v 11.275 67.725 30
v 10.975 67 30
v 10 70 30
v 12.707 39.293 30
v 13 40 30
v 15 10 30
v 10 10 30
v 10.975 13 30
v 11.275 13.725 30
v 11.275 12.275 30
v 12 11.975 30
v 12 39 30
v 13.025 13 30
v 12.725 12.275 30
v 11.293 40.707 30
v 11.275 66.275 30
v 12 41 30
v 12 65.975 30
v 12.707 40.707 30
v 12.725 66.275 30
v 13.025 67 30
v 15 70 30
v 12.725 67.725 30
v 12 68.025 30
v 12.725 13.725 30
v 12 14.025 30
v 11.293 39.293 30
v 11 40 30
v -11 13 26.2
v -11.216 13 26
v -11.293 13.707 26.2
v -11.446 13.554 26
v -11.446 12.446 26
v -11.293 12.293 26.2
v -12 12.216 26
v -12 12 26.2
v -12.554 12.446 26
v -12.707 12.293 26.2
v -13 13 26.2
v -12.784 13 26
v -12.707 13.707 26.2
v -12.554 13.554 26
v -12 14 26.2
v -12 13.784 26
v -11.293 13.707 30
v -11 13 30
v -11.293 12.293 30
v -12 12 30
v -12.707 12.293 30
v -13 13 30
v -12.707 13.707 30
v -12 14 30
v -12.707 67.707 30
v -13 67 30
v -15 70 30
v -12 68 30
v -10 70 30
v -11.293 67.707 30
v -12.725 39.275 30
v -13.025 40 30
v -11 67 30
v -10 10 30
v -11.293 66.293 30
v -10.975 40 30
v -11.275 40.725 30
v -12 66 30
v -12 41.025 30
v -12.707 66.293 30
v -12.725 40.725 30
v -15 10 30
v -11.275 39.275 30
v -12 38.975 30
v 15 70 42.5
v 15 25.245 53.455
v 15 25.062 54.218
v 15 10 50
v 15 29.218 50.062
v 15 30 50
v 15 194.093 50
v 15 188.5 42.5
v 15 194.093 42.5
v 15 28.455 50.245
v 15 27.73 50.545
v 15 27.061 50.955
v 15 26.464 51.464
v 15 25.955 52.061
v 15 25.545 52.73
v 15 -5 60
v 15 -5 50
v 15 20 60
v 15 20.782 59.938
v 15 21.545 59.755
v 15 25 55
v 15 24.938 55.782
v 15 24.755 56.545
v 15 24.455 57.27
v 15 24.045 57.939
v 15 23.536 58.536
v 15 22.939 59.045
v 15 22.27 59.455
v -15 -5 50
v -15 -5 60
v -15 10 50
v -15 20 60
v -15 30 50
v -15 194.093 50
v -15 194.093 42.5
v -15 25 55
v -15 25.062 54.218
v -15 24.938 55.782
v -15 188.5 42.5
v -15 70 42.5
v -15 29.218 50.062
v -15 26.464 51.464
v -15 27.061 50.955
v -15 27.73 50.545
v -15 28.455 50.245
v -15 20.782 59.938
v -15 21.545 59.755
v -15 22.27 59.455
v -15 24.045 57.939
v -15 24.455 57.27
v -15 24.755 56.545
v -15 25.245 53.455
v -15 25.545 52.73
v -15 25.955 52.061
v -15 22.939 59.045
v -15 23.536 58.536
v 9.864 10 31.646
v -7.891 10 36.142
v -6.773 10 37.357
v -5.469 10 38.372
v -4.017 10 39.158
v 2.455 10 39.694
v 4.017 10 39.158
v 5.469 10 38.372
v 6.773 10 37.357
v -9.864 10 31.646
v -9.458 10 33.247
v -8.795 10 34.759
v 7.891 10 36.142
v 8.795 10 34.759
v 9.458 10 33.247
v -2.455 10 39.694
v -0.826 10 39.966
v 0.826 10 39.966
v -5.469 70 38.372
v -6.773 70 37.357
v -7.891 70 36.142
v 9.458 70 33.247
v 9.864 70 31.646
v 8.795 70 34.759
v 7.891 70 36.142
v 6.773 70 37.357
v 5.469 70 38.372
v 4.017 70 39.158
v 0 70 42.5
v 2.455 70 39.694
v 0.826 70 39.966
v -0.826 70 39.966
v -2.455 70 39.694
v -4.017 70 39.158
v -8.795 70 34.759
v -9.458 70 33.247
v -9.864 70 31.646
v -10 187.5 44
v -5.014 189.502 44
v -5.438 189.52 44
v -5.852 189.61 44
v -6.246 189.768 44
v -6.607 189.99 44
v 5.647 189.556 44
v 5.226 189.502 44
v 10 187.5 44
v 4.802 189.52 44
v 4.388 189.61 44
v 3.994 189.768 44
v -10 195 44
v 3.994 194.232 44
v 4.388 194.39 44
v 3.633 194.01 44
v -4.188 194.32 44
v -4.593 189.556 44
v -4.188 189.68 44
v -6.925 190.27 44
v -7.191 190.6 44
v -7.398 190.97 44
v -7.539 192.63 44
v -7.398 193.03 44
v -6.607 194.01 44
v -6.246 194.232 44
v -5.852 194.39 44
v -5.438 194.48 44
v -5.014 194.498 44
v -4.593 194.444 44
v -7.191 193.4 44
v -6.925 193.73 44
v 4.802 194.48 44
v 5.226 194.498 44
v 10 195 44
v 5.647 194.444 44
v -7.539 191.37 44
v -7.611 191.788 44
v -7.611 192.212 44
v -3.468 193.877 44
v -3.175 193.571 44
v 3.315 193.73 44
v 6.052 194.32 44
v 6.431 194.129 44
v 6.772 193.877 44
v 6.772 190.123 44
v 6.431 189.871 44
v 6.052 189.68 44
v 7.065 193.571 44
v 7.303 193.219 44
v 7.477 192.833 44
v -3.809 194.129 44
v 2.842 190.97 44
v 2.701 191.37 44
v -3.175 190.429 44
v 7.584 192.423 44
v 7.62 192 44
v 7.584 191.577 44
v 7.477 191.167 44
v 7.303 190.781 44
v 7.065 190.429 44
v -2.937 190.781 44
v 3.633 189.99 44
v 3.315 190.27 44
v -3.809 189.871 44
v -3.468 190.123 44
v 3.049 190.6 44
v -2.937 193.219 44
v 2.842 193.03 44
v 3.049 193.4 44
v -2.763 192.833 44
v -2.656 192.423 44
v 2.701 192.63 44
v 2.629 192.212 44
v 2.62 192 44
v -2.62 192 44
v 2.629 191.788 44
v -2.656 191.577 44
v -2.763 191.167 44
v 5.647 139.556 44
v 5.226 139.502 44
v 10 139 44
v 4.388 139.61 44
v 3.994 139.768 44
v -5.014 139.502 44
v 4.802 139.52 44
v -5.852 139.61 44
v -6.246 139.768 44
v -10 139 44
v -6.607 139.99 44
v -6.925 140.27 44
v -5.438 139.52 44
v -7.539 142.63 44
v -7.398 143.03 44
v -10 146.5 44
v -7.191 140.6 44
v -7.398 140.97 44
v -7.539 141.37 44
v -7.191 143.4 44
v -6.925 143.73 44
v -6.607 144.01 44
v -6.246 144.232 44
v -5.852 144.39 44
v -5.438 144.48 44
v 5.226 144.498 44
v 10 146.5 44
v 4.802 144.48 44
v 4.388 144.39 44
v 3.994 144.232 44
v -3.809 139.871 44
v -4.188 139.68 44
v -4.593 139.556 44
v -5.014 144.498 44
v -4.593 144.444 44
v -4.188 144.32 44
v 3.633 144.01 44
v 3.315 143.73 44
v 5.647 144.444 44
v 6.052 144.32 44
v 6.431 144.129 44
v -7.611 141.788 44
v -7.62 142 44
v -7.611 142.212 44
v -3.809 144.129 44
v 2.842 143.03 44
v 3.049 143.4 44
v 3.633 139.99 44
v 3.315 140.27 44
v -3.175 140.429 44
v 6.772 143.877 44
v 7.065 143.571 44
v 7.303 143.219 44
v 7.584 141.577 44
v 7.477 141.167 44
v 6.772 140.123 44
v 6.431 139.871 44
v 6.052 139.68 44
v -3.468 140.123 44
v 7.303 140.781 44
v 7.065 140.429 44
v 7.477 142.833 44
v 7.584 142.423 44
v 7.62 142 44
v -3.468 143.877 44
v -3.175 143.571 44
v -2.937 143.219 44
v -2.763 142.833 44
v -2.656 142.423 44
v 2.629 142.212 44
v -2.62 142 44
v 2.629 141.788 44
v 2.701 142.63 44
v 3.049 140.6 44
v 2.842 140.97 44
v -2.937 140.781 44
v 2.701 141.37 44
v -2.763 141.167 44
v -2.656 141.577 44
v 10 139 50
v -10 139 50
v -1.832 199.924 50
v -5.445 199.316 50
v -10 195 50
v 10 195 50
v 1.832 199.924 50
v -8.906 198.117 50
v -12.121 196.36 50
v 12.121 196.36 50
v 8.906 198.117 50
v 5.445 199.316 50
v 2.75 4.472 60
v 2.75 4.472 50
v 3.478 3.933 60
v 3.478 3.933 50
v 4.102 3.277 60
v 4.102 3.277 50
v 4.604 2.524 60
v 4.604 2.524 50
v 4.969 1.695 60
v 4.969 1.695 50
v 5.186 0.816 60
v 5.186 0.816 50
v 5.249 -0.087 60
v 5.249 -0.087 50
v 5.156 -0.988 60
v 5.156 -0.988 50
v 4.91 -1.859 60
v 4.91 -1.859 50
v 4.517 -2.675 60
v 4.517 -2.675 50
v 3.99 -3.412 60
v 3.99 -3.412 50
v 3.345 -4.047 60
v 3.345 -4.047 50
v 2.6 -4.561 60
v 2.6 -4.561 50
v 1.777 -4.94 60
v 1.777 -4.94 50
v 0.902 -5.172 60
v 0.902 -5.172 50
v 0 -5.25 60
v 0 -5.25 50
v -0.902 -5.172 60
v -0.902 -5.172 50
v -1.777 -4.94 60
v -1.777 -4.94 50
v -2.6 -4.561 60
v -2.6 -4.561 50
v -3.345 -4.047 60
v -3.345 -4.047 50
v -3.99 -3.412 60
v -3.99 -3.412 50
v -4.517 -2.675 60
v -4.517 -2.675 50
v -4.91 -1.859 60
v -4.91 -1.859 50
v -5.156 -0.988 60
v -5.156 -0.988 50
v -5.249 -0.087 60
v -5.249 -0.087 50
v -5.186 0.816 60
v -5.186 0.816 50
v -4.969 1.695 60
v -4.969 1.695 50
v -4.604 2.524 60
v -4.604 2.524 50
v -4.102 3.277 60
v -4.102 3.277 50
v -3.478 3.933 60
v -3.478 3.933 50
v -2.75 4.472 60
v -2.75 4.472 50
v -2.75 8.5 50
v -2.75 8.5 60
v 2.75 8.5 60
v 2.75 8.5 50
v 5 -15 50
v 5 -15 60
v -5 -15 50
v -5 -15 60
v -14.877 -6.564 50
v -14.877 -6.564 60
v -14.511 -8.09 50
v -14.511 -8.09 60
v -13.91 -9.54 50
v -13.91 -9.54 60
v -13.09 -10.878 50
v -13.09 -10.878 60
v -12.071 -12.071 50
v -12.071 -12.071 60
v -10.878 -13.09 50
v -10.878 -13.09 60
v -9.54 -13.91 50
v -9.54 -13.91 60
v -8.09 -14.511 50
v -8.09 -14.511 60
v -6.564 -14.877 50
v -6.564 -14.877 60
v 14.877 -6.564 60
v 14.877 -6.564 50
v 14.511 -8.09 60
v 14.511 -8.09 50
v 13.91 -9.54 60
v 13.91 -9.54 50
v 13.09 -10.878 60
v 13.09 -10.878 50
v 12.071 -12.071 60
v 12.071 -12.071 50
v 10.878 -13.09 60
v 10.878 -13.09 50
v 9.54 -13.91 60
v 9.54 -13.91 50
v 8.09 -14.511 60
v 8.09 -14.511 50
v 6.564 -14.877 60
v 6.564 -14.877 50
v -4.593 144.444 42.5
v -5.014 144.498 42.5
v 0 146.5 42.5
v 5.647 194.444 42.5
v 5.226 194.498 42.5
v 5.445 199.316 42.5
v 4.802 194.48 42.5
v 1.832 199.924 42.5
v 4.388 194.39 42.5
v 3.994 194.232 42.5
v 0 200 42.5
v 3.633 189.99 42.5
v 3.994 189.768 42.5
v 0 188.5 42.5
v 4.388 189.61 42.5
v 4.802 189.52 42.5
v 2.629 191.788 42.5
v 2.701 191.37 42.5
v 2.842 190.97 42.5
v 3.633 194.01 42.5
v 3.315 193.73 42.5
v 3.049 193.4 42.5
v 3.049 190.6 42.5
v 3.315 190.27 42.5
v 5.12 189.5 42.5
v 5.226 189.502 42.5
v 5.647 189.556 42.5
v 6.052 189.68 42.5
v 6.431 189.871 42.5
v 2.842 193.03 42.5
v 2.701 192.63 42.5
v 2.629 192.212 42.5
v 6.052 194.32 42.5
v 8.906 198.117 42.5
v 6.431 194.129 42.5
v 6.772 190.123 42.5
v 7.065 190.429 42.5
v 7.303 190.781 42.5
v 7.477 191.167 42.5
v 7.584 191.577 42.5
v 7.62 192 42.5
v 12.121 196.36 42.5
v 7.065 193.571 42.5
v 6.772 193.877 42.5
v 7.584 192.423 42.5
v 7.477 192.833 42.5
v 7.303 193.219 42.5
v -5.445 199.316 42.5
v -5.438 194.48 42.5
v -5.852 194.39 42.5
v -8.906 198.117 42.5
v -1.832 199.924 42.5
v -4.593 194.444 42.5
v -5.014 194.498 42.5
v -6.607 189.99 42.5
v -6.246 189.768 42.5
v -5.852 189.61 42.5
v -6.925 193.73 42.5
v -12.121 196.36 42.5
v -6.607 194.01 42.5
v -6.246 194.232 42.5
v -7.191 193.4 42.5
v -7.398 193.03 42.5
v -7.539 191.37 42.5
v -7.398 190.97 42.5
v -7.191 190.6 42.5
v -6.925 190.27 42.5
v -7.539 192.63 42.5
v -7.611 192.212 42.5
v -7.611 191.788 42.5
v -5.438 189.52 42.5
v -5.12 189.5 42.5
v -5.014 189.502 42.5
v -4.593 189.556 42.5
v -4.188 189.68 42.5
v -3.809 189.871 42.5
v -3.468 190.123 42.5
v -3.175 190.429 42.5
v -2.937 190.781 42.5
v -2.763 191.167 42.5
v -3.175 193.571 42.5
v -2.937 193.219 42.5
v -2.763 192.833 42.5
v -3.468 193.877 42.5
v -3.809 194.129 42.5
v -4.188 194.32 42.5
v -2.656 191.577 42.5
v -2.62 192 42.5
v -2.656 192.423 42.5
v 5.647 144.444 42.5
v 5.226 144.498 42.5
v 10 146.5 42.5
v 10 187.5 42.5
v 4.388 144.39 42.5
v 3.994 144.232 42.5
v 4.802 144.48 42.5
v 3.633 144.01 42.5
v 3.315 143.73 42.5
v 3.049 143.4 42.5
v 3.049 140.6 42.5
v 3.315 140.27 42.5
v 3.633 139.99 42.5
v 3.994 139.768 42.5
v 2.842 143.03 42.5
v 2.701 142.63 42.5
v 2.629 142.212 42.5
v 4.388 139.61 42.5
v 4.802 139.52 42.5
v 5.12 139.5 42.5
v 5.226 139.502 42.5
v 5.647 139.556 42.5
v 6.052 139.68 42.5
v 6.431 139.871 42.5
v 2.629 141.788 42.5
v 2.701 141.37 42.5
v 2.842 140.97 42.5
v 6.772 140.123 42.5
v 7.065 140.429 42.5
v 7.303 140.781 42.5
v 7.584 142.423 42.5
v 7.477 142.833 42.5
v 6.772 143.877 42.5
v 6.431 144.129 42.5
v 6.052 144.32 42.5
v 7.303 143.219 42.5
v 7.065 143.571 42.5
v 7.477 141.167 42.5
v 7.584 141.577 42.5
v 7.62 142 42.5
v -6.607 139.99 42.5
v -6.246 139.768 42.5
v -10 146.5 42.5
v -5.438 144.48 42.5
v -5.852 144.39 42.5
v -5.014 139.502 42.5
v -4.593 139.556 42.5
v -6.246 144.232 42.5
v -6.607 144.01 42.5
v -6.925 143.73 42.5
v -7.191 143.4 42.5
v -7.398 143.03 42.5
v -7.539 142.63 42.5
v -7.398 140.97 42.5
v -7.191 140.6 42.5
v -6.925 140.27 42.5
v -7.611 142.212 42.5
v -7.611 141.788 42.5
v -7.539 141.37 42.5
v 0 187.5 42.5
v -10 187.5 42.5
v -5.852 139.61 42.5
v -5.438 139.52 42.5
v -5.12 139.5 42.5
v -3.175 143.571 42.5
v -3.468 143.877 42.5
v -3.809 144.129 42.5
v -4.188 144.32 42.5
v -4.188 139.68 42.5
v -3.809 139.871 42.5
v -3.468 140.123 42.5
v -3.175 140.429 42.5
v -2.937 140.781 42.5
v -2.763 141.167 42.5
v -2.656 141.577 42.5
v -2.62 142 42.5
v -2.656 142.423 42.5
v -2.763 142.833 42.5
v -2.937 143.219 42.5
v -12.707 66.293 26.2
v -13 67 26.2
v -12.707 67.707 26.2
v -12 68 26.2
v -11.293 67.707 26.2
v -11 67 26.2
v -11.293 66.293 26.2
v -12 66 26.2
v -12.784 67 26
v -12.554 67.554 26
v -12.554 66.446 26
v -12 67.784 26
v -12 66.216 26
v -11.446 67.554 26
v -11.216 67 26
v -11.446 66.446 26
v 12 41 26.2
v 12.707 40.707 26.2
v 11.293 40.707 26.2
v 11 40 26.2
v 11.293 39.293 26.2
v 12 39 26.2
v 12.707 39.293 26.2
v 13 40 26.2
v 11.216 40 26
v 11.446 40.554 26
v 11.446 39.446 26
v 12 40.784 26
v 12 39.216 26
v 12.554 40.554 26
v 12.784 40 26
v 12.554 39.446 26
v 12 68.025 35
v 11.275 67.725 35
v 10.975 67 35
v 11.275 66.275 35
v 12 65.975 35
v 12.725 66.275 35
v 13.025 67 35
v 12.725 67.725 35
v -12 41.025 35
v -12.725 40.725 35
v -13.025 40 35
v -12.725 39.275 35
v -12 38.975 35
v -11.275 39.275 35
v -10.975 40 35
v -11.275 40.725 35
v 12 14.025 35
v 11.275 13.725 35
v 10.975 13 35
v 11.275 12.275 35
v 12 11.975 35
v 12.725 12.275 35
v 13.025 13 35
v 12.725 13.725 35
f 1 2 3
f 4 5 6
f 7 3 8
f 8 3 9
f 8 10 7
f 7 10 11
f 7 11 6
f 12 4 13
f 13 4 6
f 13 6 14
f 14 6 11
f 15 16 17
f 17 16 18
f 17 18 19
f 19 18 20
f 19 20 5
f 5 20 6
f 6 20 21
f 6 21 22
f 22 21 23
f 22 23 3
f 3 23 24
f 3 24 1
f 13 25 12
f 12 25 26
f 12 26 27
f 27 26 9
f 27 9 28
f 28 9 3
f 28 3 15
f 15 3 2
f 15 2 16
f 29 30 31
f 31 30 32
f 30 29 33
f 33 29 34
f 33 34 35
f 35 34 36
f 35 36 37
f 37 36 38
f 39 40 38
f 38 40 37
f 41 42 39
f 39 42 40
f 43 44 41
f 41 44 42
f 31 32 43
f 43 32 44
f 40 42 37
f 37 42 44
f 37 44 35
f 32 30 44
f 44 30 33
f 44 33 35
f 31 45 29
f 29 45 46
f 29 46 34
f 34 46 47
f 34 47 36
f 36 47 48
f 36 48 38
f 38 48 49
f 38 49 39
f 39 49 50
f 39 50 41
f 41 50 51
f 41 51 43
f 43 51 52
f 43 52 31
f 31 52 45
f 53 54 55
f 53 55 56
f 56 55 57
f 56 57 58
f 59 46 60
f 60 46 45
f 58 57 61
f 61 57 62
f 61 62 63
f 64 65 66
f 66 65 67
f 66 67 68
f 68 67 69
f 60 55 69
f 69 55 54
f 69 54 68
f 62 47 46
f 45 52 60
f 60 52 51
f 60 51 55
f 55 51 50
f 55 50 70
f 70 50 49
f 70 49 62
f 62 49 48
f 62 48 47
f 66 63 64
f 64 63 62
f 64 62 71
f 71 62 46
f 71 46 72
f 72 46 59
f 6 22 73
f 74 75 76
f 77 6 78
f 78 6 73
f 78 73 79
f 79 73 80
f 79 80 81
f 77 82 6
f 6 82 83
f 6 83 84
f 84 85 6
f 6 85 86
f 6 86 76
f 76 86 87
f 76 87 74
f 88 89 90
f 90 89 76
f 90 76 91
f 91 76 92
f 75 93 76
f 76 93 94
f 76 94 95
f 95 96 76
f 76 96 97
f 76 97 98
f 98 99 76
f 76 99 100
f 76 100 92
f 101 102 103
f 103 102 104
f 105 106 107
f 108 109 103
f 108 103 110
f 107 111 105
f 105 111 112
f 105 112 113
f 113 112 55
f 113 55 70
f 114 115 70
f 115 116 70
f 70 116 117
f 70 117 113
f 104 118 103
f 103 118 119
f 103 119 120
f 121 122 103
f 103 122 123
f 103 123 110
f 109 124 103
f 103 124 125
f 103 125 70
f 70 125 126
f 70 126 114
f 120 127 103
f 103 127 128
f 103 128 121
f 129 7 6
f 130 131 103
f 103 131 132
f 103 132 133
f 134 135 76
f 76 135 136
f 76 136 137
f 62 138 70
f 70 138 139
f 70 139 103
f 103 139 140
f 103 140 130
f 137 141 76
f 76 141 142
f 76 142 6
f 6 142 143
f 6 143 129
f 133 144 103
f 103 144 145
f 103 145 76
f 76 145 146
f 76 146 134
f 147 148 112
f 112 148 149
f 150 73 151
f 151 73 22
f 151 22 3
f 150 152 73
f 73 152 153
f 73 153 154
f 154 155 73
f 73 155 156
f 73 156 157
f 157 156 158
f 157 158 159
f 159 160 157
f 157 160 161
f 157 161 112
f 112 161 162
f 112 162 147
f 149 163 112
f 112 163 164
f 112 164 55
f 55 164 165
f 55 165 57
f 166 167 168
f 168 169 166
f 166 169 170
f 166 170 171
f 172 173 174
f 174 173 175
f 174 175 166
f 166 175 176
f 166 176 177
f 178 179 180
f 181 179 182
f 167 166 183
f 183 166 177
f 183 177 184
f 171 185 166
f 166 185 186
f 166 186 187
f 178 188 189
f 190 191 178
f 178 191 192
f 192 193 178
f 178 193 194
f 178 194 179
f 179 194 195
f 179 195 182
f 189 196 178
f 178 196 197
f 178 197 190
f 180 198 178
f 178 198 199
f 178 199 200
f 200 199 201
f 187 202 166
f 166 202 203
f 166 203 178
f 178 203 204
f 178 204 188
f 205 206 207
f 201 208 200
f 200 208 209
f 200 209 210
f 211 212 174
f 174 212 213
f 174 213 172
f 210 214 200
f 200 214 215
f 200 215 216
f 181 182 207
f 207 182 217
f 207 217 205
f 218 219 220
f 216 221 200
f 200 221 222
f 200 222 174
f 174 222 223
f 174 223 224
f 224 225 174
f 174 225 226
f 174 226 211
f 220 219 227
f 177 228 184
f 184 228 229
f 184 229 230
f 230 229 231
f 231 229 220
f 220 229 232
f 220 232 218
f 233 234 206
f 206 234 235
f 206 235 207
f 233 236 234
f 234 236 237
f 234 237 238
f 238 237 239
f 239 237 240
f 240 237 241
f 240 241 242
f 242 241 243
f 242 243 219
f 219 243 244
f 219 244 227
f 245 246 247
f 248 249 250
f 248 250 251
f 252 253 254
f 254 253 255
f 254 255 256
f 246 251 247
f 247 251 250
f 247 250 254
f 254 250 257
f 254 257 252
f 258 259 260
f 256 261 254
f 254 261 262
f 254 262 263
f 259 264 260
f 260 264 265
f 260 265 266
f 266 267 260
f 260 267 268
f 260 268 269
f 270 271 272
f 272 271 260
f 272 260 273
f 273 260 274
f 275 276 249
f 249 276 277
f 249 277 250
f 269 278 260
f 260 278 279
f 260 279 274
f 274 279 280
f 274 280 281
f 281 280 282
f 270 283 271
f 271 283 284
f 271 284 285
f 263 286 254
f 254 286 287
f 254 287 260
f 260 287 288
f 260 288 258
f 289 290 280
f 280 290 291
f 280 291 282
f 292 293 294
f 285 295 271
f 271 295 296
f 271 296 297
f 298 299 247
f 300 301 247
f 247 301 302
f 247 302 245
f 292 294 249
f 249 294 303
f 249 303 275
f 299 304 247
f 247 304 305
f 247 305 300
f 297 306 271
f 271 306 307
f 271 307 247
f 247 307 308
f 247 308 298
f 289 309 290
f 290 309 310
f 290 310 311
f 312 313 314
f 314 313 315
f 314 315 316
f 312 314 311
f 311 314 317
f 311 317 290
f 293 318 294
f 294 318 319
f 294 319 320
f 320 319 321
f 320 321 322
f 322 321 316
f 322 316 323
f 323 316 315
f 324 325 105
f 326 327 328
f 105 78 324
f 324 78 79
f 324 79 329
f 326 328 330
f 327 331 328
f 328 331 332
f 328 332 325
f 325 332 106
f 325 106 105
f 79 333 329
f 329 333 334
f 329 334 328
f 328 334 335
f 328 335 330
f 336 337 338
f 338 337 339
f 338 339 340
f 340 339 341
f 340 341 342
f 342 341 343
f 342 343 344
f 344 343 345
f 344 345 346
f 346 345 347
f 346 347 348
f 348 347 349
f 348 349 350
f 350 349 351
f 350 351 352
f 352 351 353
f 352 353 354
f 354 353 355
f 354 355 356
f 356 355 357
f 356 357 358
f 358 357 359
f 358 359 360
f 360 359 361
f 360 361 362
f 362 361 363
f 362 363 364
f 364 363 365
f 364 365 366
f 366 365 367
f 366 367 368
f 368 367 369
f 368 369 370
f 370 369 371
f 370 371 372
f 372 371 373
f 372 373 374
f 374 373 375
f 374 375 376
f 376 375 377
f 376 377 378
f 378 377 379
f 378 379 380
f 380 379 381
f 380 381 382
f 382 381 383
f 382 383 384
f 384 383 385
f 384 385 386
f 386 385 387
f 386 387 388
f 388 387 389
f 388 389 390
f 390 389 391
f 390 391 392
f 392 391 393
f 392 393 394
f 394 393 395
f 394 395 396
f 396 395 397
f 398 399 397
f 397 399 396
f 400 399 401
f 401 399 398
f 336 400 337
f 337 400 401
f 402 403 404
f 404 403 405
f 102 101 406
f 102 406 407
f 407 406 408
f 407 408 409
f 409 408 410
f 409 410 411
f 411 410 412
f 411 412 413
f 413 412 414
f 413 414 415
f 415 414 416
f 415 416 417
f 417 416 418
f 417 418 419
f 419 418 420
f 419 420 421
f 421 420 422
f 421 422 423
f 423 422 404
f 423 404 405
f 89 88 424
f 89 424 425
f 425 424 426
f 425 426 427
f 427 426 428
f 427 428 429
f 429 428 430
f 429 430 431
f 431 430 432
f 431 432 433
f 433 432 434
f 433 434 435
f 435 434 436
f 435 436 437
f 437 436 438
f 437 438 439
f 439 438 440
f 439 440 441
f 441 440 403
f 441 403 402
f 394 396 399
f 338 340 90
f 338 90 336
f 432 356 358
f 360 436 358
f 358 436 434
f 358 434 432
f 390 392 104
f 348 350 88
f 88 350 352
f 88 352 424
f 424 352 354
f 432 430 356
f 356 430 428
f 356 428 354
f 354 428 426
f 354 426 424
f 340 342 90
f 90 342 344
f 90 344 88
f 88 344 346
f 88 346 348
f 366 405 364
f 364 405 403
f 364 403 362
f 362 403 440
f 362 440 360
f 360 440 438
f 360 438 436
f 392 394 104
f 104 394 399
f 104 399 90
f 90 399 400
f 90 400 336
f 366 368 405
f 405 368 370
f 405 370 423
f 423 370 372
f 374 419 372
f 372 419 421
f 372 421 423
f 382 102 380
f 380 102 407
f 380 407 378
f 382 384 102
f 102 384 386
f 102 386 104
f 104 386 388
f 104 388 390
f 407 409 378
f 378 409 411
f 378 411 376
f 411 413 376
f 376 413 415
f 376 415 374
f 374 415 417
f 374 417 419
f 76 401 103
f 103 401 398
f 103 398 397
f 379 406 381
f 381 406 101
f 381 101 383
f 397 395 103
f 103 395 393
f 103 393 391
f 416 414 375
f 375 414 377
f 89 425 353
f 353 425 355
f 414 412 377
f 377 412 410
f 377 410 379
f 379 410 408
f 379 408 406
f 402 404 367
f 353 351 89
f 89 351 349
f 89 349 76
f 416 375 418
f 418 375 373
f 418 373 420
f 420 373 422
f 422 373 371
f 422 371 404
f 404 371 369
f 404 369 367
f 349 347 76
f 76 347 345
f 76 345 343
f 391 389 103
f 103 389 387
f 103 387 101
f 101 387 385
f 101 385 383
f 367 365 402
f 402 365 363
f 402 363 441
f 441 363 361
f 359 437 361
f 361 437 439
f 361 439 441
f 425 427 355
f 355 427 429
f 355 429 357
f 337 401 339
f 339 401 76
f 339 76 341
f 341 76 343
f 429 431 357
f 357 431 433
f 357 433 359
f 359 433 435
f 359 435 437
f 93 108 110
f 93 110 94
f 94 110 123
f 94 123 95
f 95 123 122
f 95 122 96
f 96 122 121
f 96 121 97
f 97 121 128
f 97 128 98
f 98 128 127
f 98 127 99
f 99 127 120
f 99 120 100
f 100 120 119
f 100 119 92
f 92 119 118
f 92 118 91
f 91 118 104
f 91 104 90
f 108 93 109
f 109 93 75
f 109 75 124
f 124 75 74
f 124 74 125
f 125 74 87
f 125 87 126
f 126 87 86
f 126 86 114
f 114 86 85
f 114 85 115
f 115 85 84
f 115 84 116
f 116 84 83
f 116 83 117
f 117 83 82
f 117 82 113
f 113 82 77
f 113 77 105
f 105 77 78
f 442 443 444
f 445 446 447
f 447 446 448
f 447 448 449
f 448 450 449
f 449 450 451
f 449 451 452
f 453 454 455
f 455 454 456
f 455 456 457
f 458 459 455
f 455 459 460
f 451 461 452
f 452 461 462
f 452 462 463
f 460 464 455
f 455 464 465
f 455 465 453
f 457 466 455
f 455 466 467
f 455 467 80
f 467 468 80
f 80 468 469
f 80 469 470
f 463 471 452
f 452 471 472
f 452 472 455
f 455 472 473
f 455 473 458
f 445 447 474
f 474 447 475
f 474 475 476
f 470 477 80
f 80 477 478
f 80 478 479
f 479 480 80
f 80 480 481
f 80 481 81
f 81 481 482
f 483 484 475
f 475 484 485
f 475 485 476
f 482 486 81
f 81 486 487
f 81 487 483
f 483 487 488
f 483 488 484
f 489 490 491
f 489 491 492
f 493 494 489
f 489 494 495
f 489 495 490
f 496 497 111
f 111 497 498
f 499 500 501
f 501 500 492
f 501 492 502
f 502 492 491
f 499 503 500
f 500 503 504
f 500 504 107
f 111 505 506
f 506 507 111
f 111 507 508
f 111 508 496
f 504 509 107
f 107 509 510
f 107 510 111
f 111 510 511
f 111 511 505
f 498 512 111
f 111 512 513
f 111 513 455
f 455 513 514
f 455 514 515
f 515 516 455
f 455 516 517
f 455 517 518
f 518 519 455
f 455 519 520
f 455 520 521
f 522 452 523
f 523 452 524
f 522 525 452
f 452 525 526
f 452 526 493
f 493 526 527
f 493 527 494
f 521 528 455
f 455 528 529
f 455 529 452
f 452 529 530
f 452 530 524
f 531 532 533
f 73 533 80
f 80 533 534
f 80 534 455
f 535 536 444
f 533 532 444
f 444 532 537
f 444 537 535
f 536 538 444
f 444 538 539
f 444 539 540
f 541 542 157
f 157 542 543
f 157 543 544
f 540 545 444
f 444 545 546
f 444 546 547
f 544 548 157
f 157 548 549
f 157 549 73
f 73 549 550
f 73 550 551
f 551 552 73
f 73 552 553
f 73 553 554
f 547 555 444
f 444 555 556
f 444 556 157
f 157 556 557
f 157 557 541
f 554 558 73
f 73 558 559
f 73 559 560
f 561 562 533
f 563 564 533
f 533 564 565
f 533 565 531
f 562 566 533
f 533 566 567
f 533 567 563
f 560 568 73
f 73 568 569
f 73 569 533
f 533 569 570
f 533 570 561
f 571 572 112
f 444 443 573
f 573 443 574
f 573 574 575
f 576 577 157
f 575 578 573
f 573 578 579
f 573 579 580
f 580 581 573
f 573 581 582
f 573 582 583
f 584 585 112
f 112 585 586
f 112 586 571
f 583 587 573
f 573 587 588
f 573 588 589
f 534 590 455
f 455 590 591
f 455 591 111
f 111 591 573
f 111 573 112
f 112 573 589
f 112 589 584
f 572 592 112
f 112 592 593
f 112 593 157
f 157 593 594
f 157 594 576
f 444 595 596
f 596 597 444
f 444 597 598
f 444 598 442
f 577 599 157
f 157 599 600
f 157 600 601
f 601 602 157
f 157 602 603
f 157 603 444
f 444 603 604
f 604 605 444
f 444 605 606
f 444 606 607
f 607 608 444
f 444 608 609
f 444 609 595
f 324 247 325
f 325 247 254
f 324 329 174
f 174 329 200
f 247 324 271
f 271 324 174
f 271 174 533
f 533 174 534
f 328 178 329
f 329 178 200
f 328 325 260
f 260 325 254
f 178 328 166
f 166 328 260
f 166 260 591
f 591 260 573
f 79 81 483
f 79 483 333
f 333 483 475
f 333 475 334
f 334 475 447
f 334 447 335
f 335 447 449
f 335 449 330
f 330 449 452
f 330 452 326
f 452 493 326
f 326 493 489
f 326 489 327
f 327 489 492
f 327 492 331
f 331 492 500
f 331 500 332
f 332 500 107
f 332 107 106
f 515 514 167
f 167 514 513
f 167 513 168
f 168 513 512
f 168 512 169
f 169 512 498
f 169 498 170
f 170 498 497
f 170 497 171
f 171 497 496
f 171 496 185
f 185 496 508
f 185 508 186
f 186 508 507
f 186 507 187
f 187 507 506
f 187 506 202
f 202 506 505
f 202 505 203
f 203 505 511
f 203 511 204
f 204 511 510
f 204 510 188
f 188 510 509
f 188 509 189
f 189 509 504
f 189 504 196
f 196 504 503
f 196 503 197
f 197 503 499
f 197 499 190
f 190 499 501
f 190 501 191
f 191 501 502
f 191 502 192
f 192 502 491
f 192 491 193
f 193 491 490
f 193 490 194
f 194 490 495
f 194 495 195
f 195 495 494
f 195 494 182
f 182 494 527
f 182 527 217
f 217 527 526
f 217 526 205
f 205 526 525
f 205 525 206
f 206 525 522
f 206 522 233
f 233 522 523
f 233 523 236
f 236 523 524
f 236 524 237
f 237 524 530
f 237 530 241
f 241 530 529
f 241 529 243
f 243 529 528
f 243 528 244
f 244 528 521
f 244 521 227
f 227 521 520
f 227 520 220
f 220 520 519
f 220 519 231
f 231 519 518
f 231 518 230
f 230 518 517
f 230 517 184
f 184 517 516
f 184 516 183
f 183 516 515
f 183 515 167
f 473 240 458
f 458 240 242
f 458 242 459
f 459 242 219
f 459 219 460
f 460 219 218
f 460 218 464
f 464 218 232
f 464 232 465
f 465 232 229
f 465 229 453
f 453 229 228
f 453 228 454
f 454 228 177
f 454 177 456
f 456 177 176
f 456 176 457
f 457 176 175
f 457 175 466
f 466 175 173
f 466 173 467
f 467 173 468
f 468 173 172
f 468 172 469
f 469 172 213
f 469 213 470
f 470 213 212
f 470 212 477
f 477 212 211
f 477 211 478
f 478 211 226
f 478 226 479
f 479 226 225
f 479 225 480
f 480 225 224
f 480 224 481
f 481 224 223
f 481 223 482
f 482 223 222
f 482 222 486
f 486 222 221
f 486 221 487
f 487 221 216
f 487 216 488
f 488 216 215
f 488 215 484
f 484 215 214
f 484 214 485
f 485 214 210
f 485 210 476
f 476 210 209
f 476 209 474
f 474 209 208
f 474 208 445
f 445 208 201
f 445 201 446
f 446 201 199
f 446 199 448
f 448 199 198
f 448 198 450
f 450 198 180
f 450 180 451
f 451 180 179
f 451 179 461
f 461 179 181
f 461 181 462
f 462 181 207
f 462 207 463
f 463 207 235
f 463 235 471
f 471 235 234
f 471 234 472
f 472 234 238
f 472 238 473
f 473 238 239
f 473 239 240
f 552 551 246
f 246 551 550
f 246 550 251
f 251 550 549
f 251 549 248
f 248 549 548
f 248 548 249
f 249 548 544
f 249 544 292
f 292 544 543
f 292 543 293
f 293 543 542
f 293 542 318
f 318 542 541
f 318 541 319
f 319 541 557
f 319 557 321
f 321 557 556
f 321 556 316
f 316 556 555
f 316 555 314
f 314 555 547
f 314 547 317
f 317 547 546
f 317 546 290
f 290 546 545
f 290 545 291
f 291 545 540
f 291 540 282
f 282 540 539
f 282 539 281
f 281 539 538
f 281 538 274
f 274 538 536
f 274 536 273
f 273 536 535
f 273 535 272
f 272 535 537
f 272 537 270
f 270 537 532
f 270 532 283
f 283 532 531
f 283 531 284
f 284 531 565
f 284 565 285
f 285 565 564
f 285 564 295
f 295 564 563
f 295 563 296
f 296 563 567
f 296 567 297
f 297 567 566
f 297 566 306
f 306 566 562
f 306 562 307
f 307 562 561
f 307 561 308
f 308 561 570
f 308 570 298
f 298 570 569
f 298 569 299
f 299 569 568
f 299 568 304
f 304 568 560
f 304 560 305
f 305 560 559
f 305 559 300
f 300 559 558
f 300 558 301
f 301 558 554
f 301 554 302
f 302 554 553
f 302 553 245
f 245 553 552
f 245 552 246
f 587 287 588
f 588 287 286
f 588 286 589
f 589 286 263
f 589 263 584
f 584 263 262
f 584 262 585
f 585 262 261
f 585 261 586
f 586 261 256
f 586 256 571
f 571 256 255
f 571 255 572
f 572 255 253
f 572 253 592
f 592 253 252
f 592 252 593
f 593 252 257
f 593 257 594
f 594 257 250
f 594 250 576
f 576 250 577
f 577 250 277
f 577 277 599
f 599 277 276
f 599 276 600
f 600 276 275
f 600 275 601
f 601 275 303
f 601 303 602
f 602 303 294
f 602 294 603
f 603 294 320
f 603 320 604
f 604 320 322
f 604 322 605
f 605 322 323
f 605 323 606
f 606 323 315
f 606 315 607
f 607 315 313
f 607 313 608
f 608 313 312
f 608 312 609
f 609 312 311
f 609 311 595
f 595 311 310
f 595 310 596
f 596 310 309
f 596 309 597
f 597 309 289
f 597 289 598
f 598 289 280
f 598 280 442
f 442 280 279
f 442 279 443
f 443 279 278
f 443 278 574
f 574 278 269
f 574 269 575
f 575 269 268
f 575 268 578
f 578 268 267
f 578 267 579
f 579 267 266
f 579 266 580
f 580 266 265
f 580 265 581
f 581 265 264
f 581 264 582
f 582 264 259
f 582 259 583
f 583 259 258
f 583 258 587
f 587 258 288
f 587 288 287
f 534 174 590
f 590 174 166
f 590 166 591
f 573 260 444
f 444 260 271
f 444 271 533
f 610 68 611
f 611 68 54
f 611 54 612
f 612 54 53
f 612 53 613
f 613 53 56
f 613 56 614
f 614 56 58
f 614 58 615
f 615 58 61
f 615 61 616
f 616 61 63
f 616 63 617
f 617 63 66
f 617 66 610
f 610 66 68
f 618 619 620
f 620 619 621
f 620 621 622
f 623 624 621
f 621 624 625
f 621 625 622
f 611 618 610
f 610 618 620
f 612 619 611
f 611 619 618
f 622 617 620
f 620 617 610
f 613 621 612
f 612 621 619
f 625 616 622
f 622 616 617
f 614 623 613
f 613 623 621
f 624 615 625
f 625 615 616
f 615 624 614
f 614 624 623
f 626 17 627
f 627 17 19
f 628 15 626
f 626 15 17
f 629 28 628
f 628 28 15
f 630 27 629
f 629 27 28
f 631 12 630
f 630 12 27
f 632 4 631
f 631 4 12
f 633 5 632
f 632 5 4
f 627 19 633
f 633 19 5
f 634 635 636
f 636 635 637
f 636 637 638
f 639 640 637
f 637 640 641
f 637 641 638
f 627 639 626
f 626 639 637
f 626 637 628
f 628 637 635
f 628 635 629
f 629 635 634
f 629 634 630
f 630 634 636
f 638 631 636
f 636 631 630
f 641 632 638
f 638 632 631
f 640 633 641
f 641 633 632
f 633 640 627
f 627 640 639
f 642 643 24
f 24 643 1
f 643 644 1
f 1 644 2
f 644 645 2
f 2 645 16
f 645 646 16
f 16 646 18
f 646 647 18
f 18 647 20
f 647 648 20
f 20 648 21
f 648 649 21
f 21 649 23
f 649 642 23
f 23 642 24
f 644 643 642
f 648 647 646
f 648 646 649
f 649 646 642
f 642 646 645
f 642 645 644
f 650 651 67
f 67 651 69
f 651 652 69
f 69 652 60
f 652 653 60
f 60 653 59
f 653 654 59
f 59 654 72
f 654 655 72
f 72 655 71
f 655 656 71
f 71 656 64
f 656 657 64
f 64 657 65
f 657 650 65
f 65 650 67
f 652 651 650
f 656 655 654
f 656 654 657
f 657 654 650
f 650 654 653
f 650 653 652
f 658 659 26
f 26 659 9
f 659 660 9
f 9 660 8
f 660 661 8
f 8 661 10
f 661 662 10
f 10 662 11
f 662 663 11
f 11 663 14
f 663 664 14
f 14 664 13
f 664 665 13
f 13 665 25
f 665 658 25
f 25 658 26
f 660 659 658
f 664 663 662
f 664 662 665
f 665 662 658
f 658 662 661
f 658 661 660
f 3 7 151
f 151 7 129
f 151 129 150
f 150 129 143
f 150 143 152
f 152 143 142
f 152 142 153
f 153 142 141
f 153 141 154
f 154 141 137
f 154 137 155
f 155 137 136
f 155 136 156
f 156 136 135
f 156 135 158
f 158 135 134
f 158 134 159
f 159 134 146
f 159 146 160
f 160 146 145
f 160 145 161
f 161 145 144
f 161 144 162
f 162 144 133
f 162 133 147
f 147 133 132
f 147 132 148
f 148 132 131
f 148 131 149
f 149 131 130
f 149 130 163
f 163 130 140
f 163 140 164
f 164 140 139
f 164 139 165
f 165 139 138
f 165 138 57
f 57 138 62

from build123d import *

# Parameters (mm, degrees)
SKETCH2_W                              = 30
SKETCH2_H                              = 30
BOSS_EXTRUDE1_DEPTH                    = 60
FILLET1_R                              = 10
SKETCH3_W                              = 40
SKETCH3_H                              = 25
CUT_EXTRUDE1_DEPTH                     = 69.738635424
SKETCH6_W                              = 30
SKETCH6_H                              = 40
BOSS_EXTRUDE2_DEPTH                    = 125
SKETCH7_W                              = 30
SKETCH7_H                              = 10
BOSS_EXTRUDE3_DEPTH                    = 10
FILLET2_START                          = -16
FILLET2_DEPTH                          = 32
FILLET2_START_2                        = -15
FILLET2_2_DEPTH                        = 30
SKETCH8_W                              = 25
SKETCH8_H                              = 70
CUT_EXTRUDE2_DEPTH                     = 156.241746963
SKETCH12_W                             = 30
SKETCH12_H                             = 7.5
BOSS_EXTRUDE4_DEPTH                    = 65
SKETCH13_W                             = 20
SKETCH13_H                             = 56
SERVO_HOLE_OUTER_DEPTH                 = 6
SKETCH20_R                             = 5
BOSS_EXTRUDE5_DEPTH                    = 44
FILLET_FOR_FOREARM_MOVEMENT_DEPTH      = 212.541958013
FILLET_FOR_FOREARM_MOVEMENT_DEPTH_BACK = 212.541958013
SKETCH19_R                             = 2.5
SKETCH19_W                             = 20
SKETCH19_H                             = 41
SERVO_HOLE_INNER_DEPTH                 = 26.5
MAKE_HALF_DEPTH                        = 225.629334512
ONE_MALE_JACK_DEPTH                    = 4
CHAMFER2_SIZE                          = 0.2
MALE_JACKS_COUNT                       = 2
MALE_JACKS_PITCH                       = 24
MALE_JACKS_COUNT_DIR2                  = 3
MALE_JACKS_PITCH_DIR2                  = 27
CHAMFER2_OF_MALE_JACKS_SIZE            = 0.2
ONE_FEMALE_JACK_DEPTH                  = 5
FEMALE_JACKS_COUNT                     = 2
FEMALE_JACKS_PITCH                     = 24
FEMALE_JACKS_COUNT_DIR2                = 3
FEMALE_JACKS_PITCH_DIR2                = 27
SKETCH26_R                             = 10
MAKE_LIGHER_DEPTH                      = 60


with BuildPart() as part:
    # Sketch2 → Boss-Extrude1 (new body)
    with BuildSketch(Plane.XY):
        Rectangle(SKETCH2_W, SKETCH2_H)
        with BuildLine():
            ThreePointArc((5.25, 0), (-2.561737691, -4.582575695), (-2.75, 4.472135955))
            Line((-2.75, 4.472135955), (-2.75, 8.5))
            Line((-2.75, 8.5), (0, 8.5))
            Line((0, 8.5), (2.75, 8.5))
            Line((2.75, 8.5), (2.75, 4.472135955))
            ThreePointArc((2.75, 4.472135955), (4.582575695, 2.561737691), (5.25, 0))
        make_face(mode=Mode.SUBTRACT)
    extrude(amount=BOSS_EXTRUDE1_DEPTH)

    # Fillet1
    fillet1_edges = [part.edges().sort_by_distance(p)[0] for p in [
        (15, -15, 30),
        (-15, -15, 30),
    ]]
    fillet(fillet1_edges, radius=FILLET1_R)

    # Sketch3 → Cut-Extrude1 (cut, through all)
    with BuildSketch(Plane.ZY.offset(15)):
        with Locations((30, -2.5)):
            Rectangle(SKETCH3_W, SKETCH3_H)
    extrude(amount=-CUT_EXTRUDE1_DEPTH, mode=Mode.SUBTRACT)

    # Sketch6 → Boss-Extrude2 (add)
    with BuildSketch(Plane(origin=(0, 15, 0), x_dir=(1, 0, 0), z_dir=(0, 1, 0))):
        with Locations((0, -30)):
            Rectangle(SKETCH6_W, SKETCH6_H)
    extrude(amount=BOSS_EXTRUDE2_DEPTH)

    # Sketch7 → Boss-Extrude3 (add)
    with BuildSketch(Plane(origin=(0, 15, 0), x_dir=(1, 0, 0), z_dir=(0, 1, 0))):
        with Locations((0, -5)):
            Rectangle(SKETCH7_W, SKETCH7_H)
        with Locations((0, -55)):
            Rectangle(SKETCH7_W, SKETCH7_H)
    extrude(amount=BOSS_EXTRUDE3_DEPTH)

    # Fillet2: read off the stored shape, not the designer's step
    # Fillet2 outline → Fillet2 (cut)
    with BuildSketch(Plane.YZ.offset(FILLET2_START)):
        with BuildLine():
            ThreePointArc((25, 5), (23.535533906, 1.464466094), (20, 0))
            Line((20, 0), (25, 0))
            Line((25, 0), (25, 5))
        make_face()
        with BuildLine():
            Line((25, 60), (20, 60))
            ThreePointArc((20, 60), (23.535533906, 58.535533906), (25, 55))
            Line((25, 55), (25, 60))
        make_face()
    extrude(amount=FILLET2_DEPTH, mode=Mode.SUBTRACT)

    # Fillet2 2 outline → Fillet2 2 (add)
    with BuildSketch(Plane.YZ.offset(FILLET2_START_2)):
        with BuildLine():
            Line((25, 10), (25, 5))
            ThreePointArc((25, 5), (26.464466094, 8.535533906), (30, 10))
            Line((30, 10), (25, 10))
        make_face()
        with BuildLine():
            ThreePointArc((30, 50), (26.464466094, 51.464466094), (25, 55))
            Line((25, 55), (25, 50))
            Line((25, 50), (30, 50))
        make_face()
    extrude(amount=FILLET2_2_DEPTH)

    # Sketch8 → Cut-Extrude2 (cut, through all)
    with BuildSketch(Plane(origin=(15, 0, 0), x_dir=(0, 0, -1), z_dir=(1, 0, 0))):
        with Locations((-30, 105)):
            Rectangle(SKETCH8_W, SKETCH8_H)
    extrude(amount=-CUT_EXTRUDE2_DEPTH, mode=Mode.SUBTRACT)

    # Sketch12 → Boss-Extrude4 (add)
    with BuildSketch(Plane(origin=(0, 140, 0), x_dir=(1, 0, 0), z_dir=(0, 1, 0))):
        with Locations((0, -13.75)):
            Rectangle(SKETCH12_W, SKETCH12_H)
        with Locations((0, -46.25)):
            Rectangle(SKETCH12_W, SKETCH12_H)
    extrude(amount=BOSS_EXTRUDE4_DEPTH)

    # Sketch13 → Servo Hole Outer (cut)
    with BuildSketch(Plane.XY.offset(50)):
        with Locations((0, 167)):
            Rectangle(SKETCH13_W, SKETCH13_H)
    extrude(amount=-SERVO_HOLE_OUTER_DEPTH, mode=Mode.SUBTRACT)

    # Sketch20 → Boss-Extrude5 (add)
    with BuildSketch(Plane.XY.offset(44)):
        with Locations(Location((0, 178, 0), (0, 0, 90))):
            Circle(SKETCH20_R)
    extrude(amount=-BOSS_EXTRUDE5_DEPTH)

    # Sketch23 → Fillet for Forearm Movement (cut, two sides: drawn at the far end of the back side and taken through both)
    with BuildSketch(Plane(origin=(0, 0, 10), x_dir=(-1, 0, 0), z_dir=(0, 0, -1)).offset(-FILLET_FOR_FOREARM_MOVEMENT_DEPTH_BACK)):
        with BuildLine():
            Line((-15, 194.093476939), (-15, 205))
            Line((-15, 205), (15, 205))
            Line((15, 205), (15, 194.093476939))
            ThreePointArc((15, 194.093476939), (0, 200), (-15, 194.093476939))
        make_face()
    extrude(amount=FILLET_FOR_FOREARM_MOVEMENT_DEPTH + FILLET_FOR_FOREARM_MOVEMENT_DEPTH_BACK, mode=Mode.SUBTRACT)

    # Sketch19 → Servo Hole Inner (cut)
    with BuildSketch(Plane.XY.offset(44)):
        with Locations((-5.12, 192)):
            Circle(SKETCH19_R)
        with Locations(Location((5.12, 192, 0), (0, 0, 270))):
            Circle(SKETCH19_R)
        with Locations((5.12, 142)):
            Circle(SKETCH19_R)
        with Locations(Location((-5.12, 142, 0), (0, 0, 270))):
            Circle(SKETCH19_R)
        with Locations((0, 167)):
            Rectangle(SKETCH19_W, SKETCH19_H)
    extrude(amount=-SERVO_HOLE_INNER_DEPTH, mode=Mode.SUBTRACT)

    # 3DSketch2 → Make Half (cut, through all)
    with BuildSketch(Plane(origin=(-16.97773478, -20.308334844, 30), x_dir=(0.14055892995616934, 0.9900723141314359, 0), z_dir=(0, 0, 1))):
        Polygon((0, 0), (4.55547701, -32.087976668), (230.577525736, 0), (226.022048726, 32.087976668), align=None)
    extrude(amount=-MAKE_HALF_DEPTH, mode=Mode.SUBTRACT)

    # Sketch24 → One Male Jack (add)
    with BuildSketch(Plane(origin=(0, 0, 30), x_dir=(-1, 0, 0), z_dir=(0, 0, -1))):
        Polygon((13, 67), (12.707106781, 67.707106781), (12, 68), (11.292893219, 67.707106781), (11, 67), (11.292893219, 66.292893219), (12, 66), (12.707106781, 66.292893219), align=None)
    one_male_jack = extrude(amount=ONE_MALE_JACK_DEPTH)

    # Chamfer2
    chamfer2_edges = [part.edges().sort_by_distance(p)[0] for p in [
        (-12.853553391, 66.646446609, 26),
        (-12.853553391, 67.353553391, 26),
        (-12.353553391, 67.853553391, 26),
        (-11.646446609, 67.853553391, 26),
        (-11.146446609, 67.353553391, 26),
        (-11.146446609, 66.646446609, 26),
        (-11.646446609, 66.146446609, 26),
        (-12.353553391, 66.146446609, 26),
    ]]
    chamfer(chamfer2_edges, length=CHAMFER2_SIZE)

    # Male Jacks: One Male Jack 2 × 3, 3 skipped
    with Locations(*[(i * MALE_JACKS_PITCH, -j * MALE_JACKS_PITCH_DIR2, 0) for i in range(MALE_JACKS_COUNT) for j in range(MALE_JACKS_COUNT_DIR2) if (i, j) not in ((0, 0), (0, 1), (1, 0), (1, 2))]):
        add(one_male_jack)

    # Chamfer2 of Male Jacks
    chamfer2_of_male_jacks_edges = [part.edges().sort_by_distance(p)[0] for p in [
        (-12.853553391, 12.646446609, 26),
        (-12.853553391, 13.353553391, 26),
        (-12.353553391, 13.853553391, 26),
        (-11.646446609, 13.853553391, 26),
        (-11.146446609, 13.353553391, 26),
        (-11.146446609, 12.646446609, 26),
        (-11.646446609, 12.146446609, 26),
        (-12.353553391, 12.146446609, 26),
        (11.146446609, 39.646446609, 26),
        (11.146446609, 40.353553391, 26),
        (11.646446609, 40.853553391, 26),
        (12.353553391, 40.853553391, 26),
        (12.853553391, 40.353553391, 26),
        (12.853553391, 39.646446609, 26),
        (12.353553391, 39.146446609, 26),
        (11.646446609, 39.146446609, 26),
    ]]
    chamfer(chamfer2_of_male_jacks_edges, length=CHAMFER2_OF_MALE_JACKS_SIZE)

    # Sketch25 → One Female Jack (cut)
    with BuildSketch(Plane(origin=(0, 0, 30), x_dir=(-1, 0, 0), z_dir=(0, 0, -1))):
        Polygon((-12, 68.025), (-12.724784451, 67.724784451), (-13.025, 67), (-12.724784451, 66.275215549), (-12, 65.975), (-11.275215549, 66.275215549), (-10.975, 67), (-11.275215549, 67.724784451), align=None)
    one_female_jack = extrude(amount=-ONE_FEMALE_JACK_DEPTH, mode=Mode.SUBTRACT)

    # Female Jacks: One Female Jack 2 × 3, 3 skipped
    with Locations(*[(-i * FEMALE_JACKS_PITCH, -j * FEMALE_JACKS_PITCH_DIR2, 0) for i in range(FEMALE_JACKS_COUNT) for j in range(FEMALE_JACKS_COUNT_DIR2) if (i, j) not in ((0, 0), (0, 1), (1, 0), (1, 2))]):
        add(one_female_jack, mode=Mode.SUBTRACT)

    # Sketch26 → Make Ligher (cut)
    with BuildSketch(Plane.XZ.offset(-10)):
        with Locations((0, 30)):
            Circle(SKETCH26_R)
    extrude(amount=-MAKE_LIGHER_DEPTH, mode=Mode.SUBTRACT)


solid = part.part
